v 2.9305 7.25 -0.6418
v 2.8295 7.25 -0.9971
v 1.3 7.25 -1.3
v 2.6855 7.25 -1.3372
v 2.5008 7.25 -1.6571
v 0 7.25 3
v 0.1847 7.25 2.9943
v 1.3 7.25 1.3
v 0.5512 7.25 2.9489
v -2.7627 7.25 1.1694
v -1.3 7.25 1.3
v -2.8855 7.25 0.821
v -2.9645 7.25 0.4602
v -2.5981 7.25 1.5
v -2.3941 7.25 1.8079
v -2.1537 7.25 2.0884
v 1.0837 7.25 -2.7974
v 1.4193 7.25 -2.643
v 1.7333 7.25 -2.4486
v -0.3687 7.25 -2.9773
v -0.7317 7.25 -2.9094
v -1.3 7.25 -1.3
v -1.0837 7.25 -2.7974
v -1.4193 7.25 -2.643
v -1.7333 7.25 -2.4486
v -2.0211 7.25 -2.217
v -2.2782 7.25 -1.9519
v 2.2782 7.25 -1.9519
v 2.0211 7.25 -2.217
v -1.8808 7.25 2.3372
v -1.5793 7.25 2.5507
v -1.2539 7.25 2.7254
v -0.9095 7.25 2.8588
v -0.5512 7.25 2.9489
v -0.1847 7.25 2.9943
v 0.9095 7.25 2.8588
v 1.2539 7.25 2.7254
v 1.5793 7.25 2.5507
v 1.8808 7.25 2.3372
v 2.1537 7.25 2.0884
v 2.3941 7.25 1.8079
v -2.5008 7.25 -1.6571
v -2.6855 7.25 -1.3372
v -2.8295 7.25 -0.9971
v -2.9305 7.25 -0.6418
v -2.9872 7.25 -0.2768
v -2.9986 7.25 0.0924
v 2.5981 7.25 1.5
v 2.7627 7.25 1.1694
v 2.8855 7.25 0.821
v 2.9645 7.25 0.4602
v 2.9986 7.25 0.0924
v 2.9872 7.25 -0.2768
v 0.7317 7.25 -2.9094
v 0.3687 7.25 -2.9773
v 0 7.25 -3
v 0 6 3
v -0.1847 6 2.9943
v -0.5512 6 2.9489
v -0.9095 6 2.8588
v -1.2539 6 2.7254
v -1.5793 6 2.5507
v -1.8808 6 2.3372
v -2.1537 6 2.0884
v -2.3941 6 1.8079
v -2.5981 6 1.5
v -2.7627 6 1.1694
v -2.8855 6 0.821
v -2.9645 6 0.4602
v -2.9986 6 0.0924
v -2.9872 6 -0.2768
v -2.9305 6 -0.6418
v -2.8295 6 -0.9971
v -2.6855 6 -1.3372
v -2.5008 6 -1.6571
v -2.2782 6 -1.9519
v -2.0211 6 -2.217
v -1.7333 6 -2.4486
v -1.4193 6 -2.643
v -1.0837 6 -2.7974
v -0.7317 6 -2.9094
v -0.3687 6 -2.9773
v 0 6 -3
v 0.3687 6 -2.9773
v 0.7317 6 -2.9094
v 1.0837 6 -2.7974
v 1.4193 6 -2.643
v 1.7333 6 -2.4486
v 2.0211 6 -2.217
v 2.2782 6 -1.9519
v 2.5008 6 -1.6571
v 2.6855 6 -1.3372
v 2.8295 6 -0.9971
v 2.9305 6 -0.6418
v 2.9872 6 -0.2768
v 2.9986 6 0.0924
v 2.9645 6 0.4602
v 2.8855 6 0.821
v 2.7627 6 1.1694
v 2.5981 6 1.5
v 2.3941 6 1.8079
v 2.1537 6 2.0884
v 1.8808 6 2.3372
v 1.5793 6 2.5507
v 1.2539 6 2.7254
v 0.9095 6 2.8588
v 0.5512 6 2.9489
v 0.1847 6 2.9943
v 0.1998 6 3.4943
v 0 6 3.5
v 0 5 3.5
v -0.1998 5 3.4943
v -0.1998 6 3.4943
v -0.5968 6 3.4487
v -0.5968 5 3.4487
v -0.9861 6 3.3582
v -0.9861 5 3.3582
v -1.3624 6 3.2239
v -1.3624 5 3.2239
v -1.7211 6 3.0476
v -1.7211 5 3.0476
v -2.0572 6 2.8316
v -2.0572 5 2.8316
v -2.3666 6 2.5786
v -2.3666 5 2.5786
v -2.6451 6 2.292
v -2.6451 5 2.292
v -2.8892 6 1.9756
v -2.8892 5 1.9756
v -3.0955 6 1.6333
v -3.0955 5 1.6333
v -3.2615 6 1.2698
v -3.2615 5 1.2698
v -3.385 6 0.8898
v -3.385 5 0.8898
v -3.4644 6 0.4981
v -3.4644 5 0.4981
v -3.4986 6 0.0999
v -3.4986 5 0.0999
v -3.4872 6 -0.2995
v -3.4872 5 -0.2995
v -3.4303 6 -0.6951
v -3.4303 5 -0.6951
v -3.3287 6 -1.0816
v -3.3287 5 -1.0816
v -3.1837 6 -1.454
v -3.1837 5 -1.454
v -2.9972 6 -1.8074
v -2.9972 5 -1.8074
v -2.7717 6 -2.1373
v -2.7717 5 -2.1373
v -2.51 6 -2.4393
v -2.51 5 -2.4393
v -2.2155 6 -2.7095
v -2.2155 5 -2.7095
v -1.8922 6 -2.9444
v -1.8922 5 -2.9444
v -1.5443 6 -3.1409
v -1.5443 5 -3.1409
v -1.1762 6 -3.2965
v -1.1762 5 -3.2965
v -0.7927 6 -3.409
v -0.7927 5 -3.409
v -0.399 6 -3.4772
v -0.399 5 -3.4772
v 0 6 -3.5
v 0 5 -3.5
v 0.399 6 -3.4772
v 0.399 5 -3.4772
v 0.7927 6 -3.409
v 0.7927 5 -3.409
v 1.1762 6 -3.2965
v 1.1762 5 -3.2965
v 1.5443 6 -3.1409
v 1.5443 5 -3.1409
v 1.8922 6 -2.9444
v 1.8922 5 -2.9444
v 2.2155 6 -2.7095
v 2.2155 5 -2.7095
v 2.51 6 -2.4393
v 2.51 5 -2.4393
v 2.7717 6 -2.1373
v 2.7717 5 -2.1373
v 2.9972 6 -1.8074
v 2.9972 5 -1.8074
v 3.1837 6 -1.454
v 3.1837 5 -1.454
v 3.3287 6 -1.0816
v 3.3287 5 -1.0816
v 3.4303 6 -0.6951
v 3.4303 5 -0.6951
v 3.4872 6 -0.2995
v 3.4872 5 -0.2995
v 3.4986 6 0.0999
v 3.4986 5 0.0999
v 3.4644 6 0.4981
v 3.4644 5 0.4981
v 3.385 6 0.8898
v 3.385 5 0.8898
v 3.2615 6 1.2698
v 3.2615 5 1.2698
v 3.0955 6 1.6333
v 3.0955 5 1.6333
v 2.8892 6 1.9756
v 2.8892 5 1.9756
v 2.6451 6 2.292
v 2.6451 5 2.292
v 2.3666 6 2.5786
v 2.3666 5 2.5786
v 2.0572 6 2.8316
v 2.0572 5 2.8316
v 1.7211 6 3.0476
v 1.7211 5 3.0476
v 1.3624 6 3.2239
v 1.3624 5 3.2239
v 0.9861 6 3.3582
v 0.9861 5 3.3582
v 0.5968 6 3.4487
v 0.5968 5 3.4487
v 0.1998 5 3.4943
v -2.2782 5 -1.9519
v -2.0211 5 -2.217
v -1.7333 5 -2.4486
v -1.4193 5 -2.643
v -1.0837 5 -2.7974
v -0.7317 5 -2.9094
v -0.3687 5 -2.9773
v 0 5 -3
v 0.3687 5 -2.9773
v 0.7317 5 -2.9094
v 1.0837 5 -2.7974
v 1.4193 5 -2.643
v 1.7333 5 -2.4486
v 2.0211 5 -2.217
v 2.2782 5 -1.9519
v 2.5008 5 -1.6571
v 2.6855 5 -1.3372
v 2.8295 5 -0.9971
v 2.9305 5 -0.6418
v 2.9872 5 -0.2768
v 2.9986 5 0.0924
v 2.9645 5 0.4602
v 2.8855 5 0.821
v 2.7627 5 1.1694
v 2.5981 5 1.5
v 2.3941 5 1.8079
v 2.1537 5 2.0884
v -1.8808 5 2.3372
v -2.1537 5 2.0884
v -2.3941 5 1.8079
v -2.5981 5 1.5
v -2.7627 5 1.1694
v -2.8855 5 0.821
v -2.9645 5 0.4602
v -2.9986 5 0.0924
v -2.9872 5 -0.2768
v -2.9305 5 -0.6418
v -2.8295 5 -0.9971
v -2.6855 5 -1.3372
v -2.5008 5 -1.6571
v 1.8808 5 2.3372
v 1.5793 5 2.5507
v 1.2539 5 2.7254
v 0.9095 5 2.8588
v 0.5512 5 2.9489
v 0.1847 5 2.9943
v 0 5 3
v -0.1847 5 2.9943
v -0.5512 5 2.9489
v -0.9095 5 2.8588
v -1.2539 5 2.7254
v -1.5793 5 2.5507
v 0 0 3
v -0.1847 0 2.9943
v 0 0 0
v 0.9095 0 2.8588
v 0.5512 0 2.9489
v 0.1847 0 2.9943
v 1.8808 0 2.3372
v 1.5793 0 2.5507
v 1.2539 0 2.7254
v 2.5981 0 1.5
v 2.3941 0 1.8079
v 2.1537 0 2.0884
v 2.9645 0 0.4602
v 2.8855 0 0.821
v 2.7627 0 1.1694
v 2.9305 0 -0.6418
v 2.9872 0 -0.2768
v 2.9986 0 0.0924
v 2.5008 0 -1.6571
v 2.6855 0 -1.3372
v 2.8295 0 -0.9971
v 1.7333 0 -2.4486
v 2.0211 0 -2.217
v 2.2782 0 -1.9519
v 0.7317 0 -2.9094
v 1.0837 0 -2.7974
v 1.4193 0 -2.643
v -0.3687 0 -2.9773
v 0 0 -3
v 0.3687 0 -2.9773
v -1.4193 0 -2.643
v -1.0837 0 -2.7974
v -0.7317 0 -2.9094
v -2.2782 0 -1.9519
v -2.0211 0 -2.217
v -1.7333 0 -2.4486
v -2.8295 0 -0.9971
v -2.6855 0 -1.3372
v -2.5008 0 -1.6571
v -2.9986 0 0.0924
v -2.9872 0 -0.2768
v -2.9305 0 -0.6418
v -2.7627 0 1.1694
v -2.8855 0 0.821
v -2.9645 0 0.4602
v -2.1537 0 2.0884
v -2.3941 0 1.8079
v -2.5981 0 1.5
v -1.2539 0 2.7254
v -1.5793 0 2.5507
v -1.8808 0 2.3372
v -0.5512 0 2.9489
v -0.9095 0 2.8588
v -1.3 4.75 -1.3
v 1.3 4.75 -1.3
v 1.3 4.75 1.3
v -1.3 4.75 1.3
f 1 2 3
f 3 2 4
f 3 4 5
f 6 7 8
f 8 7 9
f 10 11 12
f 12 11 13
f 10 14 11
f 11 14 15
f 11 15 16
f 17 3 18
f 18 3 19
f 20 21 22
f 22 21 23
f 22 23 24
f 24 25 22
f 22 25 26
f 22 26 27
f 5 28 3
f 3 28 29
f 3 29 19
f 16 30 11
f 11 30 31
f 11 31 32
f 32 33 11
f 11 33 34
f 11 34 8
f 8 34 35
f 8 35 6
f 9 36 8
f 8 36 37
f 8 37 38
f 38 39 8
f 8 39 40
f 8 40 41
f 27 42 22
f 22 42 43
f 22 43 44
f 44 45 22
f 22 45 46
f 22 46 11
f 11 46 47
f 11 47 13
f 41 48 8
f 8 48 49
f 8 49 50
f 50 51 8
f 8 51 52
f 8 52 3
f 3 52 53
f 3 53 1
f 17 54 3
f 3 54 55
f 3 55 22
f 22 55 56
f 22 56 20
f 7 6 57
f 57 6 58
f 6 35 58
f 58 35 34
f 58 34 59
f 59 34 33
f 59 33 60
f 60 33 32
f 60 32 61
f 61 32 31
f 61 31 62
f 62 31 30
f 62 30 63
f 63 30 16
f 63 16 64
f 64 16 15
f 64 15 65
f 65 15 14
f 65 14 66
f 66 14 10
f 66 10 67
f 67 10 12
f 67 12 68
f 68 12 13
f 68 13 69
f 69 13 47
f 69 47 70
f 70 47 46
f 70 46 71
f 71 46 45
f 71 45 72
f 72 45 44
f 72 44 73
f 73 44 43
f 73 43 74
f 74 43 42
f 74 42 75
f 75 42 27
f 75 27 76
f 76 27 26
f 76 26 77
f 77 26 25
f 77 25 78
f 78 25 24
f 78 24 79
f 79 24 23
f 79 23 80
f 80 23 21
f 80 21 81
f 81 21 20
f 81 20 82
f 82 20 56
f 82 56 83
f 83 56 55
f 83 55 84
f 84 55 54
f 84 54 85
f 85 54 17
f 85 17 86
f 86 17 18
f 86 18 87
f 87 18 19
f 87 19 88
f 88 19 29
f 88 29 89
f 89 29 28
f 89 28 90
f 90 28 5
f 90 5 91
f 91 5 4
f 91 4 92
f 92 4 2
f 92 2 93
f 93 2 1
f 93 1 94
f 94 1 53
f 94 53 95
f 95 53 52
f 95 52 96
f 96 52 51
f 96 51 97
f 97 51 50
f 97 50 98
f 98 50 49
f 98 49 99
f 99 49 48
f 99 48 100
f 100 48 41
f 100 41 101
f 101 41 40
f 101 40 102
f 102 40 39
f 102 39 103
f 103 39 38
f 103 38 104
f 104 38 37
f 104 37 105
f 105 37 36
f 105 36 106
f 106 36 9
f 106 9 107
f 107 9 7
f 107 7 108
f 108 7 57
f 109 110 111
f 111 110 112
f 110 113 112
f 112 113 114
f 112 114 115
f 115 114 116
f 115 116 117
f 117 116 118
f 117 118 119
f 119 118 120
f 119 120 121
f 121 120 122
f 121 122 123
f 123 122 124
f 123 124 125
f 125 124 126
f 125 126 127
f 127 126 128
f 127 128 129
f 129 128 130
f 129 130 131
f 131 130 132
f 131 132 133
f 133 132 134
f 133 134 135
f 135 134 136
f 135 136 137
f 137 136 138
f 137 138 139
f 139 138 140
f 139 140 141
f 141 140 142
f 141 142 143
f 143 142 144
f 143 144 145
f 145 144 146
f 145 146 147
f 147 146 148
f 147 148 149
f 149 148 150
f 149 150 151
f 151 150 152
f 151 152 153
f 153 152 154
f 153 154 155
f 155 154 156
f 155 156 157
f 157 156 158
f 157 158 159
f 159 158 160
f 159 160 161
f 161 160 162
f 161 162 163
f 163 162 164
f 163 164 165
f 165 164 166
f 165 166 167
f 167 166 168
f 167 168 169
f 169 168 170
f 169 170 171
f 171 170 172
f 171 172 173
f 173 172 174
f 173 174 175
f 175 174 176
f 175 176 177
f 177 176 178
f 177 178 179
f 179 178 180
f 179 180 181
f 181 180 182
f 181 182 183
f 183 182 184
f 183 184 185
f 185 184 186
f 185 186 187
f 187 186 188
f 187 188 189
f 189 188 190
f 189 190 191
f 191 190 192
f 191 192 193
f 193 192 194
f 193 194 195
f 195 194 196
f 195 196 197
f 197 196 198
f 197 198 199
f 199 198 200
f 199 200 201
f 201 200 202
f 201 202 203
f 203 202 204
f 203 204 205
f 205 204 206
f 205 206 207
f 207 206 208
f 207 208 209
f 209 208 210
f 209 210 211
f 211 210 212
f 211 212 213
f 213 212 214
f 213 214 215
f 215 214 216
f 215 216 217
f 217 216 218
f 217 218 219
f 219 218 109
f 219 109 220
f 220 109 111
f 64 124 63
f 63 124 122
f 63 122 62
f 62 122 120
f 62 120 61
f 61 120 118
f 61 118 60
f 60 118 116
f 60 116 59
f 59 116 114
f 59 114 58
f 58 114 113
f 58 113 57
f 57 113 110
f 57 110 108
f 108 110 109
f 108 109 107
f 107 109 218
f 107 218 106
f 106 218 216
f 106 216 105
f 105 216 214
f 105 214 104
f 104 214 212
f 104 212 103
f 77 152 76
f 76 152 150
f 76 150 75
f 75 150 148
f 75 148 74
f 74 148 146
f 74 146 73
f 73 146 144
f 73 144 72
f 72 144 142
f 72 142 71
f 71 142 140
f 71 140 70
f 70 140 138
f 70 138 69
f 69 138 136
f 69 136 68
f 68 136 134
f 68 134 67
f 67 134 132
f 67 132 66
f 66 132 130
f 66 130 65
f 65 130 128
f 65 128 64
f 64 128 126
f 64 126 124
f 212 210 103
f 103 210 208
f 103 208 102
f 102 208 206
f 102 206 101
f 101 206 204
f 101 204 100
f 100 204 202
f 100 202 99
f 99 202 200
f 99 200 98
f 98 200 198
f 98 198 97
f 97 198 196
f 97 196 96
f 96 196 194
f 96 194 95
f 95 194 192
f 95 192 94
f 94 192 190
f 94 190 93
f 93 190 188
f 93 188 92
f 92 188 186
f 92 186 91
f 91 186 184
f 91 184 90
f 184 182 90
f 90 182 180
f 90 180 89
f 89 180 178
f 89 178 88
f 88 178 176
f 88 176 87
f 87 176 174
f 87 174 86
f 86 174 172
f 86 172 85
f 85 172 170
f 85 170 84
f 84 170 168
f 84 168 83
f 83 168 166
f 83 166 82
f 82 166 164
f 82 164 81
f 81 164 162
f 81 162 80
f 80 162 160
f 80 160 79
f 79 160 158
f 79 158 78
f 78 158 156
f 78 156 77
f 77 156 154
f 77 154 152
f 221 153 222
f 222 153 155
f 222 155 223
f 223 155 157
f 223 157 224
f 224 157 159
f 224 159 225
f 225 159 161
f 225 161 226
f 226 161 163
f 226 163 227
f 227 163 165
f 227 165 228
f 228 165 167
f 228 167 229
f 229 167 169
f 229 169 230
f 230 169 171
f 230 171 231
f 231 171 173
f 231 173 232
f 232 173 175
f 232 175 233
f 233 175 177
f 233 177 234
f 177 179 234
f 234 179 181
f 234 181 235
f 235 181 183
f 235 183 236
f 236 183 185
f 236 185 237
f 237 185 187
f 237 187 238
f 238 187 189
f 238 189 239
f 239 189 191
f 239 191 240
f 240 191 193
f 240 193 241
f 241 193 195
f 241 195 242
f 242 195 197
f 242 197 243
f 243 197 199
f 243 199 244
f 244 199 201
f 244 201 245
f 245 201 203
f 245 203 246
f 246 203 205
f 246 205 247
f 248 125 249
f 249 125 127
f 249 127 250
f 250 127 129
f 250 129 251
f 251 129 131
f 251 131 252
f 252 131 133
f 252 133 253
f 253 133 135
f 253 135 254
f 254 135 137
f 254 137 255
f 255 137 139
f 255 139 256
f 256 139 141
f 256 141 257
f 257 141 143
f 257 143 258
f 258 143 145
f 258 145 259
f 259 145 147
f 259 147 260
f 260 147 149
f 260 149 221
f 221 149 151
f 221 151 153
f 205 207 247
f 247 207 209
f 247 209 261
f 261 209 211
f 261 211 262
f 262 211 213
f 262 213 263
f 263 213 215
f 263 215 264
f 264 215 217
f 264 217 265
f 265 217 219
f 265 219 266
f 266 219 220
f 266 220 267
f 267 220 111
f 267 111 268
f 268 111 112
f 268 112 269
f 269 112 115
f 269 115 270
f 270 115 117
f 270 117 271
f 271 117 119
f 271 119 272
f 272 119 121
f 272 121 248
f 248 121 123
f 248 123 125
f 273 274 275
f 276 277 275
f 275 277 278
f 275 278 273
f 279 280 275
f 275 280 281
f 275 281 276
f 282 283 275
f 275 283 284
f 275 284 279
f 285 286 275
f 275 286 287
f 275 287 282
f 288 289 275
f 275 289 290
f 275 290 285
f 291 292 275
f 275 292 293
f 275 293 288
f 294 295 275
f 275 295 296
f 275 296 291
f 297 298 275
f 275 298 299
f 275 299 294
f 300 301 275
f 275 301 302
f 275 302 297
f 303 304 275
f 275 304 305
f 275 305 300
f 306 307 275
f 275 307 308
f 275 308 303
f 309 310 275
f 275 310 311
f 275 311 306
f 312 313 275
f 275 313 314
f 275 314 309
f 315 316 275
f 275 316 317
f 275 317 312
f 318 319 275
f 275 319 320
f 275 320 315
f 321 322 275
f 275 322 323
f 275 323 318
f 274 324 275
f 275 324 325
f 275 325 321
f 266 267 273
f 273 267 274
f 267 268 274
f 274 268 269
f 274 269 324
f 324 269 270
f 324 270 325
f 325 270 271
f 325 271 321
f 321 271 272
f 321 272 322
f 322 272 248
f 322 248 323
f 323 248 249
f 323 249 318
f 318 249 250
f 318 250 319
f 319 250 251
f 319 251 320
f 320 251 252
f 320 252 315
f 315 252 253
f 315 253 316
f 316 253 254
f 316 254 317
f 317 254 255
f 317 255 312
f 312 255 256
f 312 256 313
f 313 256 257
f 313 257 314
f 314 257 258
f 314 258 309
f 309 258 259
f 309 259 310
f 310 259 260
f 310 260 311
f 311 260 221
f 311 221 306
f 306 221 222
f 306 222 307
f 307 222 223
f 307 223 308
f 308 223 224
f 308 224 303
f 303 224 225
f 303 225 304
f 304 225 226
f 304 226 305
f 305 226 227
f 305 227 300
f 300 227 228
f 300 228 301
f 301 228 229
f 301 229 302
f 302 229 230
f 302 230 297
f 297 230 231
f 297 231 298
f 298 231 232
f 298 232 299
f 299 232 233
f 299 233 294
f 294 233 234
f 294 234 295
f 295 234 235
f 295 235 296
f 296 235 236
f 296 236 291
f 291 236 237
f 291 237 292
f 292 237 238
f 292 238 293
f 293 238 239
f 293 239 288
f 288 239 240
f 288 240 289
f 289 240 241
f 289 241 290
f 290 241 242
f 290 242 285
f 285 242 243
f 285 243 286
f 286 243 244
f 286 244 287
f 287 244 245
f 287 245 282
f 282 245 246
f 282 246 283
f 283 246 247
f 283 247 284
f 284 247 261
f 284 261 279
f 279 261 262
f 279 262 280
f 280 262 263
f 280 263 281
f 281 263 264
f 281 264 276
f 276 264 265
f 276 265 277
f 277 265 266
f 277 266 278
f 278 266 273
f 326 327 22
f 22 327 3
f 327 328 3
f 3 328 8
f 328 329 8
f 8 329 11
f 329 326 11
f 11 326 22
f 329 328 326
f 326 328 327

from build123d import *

# Parameters (mm, degrees)
SKIZZE1_R                       = 3
AUFSATZ_LINEAR_AUSTRAGEN1_DEPTH = 7.25
AUFSATZ_LINEAR_START            = 5
SKIZZE3_R                       = 3.5
AUFSATZ_LINEAR_AUSTRAGEN2_DEPTH = 1
SKIZZE2_W                       = 2.6
SKIZZE2_H                       = 2.6
SCHNITT_LINEAR_AUSTRAGEN1_DEPTH = 2.5


with BuildPart() as part:
    # Skizze1 → Aufsatz-Linear austragen1 (new body)
    with BuildSketch(Plane(origin=(0, 0, 0), x_dir=(1, 0, 0), z_dir=(0, 1, 0))):
        with Locations(Location((0, 0, 0), (0, 0, 90))):
            Circle(SKIZZE1_R)
    extrude(amount=AUFSATZ_LINEAR_AUSTRAGEN1_DEPTH)

    # Skizze3 → Aufsatz-Linear austragen2 (add)
    with BuildSketch(Plane(origin=(0, 0, 0), x_dir=(1, 0, 0), z_dir=(0, 1, 0)).offset(AUFSATZ_LINEAR_START)):
        with Locations(Location((0, 0, 0), (0, 0, 270))):
            Circle(SKIZZE3_R)
    extrude(amount=AUFSATZ_LINEAR_AUSTRAGEN2_DEPTH)

    # Skizze2 → Schnitt-Linear austragen1 (cut)
    with BuildSketch(Plane(origin=(0, 7.25, 0), x_dir=(1, 0, 0), z_dir=(0, 1, 0))):
        Rectangle(SKIZZE2_W, SKIZZE2_H)
    extrude(amount=-SCHNITT_LINEAR_AUSTRAGEN1_DEPTH, mode=Mode.SUBTRACT)


solid = part.part
